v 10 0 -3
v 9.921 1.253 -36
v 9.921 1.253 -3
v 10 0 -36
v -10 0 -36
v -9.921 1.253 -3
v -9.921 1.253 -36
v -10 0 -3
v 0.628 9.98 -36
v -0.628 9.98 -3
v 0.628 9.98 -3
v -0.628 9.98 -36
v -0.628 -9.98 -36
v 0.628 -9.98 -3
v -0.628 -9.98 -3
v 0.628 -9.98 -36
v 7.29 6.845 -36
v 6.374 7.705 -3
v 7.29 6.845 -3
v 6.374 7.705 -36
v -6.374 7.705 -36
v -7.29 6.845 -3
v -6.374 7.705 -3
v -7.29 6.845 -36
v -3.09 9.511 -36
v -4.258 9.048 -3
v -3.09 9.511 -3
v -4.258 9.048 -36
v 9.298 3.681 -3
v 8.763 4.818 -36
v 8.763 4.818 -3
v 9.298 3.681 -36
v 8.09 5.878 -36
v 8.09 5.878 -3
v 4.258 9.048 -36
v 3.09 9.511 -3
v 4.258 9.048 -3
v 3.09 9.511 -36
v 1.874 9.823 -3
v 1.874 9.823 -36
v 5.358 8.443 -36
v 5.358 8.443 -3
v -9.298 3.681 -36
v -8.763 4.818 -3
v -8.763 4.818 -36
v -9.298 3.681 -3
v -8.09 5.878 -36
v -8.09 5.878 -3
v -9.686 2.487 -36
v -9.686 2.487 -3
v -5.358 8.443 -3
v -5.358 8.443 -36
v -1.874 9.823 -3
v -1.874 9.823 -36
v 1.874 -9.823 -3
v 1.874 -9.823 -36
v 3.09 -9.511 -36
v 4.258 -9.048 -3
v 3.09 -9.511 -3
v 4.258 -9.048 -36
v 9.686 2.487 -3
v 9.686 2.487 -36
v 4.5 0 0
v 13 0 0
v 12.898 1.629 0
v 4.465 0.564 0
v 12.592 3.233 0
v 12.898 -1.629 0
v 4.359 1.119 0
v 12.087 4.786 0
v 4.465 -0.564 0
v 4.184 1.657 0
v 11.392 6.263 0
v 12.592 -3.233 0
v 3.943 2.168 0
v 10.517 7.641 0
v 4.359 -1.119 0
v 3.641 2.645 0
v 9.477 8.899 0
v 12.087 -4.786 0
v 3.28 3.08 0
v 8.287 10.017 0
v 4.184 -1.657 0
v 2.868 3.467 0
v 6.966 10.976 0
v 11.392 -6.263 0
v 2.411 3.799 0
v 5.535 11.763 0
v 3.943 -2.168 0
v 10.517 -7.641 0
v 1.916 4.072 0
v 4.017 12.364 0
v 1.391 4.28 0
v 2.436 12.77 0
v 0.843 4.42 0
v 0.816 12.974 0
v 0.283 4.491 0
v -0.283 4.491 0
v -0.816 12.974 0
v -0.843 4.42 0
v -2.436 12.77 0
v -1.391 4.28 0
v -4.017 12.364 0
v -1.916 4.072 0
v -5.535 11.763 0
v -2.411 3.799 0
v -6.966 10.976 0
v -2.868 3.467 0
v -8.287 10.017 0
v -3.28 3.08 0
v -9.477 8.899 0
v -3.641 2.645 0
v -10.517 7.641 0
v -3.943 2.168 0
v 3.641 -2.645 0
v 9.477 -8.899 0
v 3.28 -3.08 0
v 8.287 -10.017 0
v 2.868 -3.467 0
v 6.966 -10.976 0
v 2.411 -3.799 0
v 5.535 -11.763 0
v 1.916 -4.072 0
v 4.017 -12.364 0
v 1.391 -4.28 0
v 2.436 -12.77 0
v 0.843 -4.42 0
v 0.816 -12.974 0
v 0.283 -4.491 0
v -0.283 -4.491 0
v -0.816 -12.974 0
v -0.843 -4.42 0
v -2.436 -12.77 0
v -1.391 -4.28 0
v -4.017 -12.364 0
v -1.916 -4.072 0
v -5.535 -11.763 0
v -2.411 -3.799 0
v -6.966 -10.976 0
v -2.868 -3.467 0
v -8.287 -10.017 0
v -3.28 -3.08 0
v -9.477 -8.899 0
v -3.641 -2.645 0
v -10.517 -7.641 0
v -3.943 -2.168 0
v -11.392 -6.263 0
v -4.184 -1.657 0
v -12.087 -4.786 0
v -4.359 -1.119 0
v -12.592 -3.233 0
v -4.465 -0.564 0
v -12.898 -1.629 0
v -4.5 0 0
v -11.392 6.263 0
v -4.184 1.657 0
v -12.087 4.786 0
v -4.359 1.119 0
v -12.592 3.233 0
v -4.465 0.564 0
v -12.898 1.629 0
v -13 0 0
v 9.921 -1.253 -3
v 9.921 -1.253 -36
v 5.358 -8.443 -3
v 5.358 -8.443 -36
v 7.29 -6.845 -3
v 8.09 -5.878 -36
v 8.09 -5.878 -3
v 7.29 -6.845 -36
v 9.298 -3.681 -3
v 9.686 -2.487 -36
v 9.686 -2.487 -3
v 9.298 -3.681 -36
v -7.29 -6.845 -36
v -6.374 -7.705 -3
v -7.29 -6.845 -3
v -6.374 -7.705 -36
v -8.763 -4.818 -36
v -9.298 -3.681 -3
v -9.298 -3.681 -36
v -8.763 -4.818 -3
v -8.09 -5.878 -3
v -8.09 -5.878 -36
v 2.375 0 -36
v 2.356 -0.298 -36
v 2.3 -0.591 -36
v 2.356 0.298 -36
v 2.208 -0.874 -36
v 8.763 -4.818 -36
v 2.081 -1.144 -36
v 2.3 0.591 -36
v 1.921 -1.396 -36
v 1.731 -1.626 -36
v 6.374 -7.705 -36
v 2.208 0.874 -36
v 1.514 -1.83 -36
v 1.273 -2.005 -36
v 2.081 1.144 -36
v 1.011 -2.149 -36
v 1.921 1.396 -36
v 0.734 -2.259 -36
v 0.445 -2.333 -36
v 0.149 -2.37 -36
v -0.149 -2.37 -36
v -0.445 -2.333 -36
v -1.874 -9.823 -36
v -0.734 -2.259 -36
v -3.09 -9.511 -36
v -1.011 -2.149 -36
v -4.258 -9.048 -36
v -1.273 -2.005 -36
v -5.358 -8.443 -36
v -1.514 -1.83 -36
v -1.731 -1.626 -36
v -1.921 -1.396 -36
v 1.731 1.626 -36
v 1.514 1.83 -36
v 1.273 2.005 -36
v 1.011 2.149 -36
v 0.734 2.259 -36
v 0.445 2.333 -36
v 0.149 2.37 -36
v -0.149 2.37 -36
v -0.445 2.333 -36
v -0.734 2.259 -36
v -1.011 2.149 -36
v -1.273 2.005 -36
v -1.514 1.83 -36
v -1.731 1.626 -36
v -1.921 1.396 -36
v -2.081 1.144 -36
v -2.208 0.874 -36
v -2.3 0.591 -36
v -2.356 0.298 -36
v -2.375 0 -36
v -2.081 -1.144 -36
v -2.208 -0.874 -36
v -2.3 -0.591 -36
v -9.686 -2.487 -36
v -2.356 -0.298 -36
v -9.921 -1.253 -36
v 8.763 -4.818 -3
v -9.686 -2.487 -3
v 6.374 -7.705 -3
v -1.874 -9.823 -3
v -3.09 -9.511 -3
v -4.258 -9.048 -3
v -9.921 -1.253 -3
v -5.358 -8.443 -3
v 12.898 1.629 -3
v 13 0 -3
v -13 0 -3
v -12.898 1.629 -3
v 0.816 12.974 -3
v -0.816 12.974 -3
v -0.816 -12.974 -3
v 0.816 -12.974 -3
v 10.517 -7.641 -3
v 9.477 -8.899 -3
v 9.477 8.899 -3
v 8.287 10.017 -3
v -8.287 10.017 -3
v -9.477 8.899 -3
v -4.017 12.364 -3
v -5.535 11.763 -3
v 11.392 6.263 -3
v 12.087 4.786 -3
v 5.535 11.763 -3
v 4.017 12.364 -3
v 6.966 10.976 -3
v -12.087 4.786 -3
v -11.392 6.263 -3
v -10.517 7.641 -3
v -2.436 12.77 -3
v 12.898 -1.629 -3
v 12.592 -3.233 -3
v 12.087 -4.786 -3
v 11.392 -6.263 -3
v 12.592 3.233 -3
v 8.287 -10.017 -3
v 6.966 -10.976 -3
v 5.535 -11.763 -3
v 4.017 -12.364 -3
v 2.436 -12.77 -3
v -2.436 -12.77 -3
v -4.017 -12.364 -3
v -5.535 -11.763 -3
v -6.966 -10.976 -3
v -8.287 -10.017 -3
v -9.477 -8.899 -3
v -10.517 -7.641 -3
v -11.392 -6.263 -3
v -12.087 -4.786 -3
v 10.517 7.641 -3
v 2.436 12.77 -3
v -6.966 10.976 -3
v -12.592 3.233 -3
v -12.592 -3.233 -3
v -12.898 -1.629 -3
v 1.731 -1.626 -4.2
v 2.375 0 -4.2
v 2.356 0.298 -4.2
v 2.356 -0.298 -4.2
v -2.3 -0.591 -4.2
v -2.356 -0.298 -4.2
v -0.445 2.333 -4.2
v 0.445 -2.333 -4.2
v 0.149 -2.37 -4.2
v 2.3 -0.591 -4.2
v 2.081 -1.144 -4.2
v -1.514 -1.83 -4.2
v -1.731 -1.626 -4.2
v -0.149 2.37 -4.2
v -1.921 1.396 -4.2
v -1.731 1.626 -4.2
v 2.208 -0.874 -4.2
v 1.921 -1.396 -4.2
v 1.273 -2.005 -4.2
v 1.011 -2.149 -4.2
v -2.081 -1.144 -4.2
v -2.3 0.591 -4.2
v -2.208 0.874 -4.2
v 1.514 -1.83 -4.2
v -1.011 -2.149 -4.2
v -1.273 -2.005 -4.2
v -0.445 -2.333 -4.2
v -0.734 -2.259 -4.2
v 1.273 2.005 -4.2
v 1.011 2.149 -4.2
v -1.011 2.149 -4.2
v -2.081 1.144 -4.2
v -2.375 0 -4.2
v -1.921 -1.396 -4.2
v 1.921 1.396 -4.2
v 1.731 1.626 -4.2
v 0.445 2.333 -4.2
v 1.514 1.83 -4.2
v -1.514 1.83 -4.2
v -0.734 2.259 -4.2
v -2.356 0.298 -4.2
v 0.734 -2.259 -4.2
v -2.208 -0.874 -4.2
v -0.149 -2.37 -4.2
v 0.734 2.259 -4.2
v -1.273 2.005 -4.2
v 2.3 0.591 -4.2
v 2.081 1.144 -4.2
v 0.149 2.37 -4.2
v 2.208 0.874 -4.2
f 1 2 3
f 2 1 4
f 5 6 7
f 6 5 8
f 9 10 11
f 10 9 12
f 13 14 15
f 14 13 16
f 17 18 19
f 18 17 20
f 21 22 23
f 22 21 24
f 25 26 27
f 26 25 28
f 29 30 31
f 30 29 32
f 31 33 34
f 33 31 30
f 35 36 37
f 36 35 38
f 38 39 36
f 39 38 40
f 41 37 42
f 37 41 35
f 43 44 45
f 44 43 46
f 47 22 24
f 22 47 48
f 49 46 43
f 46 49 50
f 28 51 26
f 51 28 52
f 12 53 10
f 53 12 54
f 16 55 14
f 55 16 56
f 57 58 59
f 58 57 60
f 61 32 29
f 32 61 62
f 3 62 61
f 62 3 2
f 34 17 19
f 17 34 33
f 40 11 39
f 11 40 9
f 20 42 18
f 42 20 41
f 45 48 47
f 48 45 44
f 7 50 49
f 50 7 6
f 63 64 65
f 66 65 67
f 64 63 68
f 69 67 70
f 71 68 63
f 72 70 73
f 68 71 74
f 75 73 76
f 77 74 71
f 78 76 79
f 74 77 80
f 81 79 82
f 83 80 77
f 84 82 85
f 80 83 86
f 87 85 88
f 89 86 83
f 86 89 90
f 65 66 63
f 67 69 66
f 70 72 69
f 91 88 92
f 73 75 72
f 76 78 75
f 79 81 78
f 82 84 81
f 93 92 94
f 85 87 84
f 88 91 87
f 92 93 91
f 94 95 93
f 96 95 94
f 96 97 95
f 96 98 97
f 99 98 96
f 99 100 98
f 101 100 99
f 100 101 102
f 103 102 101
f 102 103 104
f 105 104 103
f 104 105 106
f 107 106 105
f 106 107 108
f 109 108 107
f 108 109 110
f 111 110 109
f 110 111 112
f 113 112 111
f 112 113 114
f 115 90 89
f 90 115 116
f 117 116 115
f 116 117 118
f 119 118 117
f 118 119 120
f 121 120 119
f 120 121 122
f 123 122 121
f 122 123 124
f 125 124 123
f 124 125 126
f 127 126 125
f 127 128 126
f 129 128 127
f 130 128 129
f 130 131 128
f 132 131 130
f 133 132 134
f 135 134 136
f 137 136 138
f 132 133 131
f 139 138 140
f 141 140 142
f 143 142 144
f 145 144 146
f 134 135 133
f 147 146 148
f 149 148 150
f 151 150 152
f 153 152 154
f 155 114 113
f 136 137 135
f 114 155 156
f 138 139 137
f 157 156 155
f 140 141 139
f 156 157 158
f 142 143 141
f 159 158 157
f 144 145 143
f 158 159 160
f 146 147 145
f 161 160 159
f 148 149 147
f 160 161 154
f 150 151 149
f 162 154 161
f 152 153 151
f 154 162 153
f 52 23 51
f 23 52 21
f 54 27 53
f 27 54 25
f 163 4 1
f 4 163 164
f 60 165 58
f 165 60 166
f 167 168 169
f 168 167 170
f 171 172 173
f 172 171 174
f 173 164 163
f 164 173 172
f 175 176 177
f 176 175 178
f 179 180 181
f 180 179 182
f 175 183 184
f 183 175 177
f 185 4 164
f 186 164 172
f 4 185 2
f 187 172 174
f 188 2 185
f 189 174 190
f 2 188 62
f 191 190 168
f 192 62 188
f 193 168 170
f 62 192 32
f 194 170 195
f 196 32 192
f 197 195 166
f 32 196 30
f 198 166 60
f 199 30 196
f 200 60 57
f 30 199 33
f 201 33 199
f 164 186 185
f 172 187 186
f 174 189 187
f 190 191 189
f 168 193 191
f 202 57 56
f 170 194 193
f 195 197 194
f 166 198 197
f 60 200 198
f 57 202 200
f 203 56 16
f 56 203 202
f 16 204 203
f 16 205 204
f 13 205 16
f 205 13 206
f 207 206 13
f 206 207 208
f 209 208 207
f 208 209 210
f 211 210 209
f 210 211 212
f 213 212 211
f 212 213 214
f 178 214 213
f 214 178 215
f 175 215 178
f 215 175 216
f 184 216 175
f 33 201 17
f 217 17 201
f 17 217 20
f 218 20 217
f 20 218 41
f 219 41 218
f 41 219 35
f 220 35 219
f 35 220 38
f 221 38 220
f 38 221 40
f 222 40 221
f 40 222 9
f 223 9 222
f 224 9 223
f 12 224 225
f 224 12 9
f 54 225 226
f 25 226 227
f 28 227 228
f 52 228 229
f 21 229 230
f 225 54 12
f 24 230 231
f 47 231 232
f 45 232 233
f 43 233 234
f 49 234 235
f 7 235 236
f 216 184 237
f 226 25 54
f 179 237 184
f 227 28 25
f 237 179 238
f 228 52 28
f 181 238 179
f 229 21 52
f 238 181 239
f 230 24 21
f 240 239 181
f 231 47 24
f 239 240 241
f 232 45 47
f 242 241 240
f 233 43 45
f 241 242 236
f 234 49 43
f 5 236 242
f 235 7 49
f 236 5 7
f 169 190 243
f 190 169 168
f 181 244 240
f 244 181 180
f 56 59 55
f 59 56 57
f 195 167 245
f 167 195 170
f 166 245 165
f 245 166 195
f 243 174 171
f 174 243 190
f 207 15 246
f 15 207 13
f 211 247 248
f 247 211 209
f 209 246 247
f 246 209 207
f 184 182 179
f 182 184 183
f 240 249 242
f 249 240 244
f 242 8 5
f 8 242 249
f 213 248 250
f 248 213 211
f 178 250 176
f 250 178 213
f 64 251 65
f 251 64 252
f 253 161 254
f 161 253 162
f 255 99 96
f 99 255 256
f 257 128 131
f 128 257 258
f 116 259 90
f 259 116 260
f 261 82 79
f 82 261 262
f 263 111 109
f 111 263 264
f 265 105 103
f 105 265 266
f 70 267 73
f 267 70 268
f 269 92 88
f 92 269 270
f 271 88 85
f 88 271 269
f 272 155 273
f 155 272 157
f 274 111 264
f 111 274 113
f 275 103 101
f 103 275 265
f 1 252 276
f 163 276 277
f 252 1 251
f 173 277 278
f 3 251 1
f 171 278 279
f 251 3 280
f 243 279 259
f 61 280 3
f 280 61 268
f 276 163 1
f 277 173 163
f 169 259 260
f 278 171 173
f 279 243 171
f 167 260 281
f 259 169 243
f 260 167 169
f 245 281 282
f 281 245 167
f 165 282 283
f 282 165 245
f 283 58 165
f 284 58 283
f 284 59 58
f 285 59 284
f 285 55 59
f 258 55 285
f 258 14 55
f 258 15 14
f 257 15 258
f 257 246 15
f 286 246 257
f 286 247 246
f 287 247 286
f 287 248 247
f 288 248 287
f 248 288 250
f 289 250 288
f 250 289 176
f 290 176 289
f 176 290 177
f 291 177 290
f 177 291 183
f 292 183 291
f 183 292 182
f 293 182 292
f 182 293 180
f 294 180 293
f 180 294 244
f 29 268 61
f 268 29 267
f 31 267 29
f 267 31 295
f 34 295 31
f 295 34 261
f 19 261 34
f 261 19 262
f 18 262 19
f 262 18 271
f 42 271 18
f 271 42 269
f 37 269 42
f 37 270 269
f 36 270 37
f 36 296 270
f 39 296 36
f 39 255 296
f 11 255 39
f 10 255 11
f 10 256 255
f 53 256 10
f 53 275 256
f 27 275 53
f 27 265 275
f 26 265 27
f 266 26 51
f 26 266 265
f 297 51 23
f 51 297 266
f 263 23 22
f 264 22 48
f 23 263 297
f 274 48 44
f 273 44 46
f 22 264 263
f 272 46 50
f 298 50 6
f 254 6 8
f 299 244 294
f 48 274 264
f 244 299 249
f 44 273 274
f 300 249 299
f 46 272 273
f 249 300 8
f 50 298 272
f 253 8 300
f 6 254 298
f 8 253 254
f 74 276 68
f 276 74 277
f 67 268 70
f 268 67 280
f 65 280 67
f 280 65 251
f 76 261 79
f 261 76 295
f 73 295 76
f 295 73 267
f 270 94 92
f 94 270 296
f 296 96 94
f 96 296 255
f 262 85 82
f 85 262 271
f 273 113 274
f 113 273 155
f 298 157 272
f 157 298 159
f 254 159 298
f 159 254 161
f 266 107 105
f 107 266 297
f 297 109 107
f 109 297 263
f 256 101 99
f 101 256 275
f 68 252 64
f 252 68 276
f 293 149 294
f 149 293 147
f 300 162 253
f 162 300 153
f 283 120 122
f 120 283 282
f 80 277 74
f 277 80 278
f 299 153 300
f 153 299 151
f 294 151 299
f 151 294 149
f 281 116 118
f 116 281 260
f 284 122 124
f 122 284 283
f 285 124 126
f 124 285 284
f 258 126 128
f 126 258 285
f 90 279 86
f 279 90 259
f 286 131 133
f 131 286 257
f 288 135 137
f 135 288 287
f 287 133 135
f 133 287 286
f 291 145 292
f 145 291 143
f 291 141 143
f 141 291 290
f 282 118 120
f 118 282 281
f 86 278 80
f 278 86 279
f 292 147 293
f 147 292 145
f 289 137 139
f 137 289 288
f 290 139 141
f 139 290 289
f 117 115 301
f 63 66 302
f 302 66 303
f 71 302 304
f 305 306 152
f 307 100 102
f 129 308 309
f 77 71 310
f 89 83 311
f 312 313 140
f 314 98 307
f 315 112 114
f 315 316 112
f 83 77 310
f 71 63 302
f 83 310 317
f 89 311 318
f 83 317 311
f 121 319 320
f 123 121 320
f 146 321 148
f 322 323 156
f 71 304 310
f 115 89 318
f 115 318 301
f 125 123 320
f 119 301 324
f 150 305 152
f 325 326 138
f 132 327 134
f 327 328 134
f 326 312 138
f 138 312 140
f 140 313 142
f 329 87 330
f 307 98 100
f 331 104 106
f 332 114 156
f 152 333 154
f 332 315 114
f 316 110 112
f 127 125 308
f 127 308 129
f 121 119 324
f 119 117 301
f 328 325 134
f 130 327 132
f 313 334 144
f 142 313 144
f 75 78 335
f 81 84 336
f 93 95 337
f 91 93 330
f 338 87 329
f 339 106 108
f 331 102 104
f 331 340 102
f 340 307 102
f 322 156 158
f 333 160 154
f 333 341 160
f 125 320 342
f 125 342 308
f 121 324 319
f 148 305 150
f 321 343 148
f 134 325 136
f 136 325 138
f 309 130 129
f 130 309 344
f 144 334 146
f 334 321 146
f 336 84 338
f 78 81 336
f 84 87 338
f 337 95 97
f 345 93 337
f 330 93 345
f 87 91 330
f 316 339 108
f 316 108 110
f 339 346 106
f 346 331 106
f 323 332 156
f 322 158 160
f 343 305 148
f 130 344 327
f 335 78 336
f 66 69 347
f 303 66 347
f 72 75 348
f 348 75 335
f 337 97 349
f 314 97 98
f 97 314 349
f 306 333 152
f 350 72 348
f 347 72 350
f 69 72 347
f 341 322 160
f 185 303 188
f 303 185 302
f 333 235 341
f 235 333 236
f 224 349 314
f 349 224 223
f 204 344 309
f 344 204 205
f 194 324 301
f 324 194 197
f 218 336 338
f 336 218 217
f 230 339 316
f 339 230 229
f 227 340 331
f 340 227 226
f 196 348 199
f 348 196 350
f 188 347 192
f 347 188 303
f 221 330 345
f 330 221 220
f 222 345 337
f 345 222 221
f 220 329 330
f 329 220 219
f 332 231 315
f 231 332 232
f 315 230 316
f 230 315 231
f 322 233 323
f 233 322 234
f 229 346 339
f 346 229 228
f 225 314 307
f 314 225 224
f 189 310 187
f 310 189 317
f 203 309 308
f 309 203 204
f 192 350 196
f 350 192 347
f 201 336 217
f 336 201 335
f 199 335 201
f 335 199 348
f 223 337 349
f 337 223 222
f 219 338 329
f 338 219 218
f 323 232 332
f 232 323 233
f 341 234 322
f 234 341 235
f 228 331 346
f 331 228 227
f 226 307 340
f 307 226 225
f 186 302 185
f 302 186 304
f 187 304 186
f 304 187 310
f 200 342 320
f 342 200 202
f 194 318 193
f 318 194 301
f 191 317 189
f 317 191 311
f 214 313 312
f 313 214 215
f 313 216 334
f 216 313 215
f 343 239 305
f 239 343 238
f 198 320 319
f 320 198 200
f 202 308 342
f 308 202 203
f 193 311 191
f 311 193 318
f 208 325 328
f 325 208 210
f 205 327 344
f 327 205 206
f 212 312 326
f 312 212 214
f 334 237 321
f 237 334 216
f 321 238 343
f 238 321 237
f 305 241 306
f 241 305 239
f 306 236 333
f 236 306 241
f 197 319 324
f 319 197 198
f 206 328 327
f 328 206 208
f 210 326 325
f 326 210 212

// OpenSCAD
$fn = 50;


difference() {
	union() {
		translate(v = [0, 0, -36.0000000000]) {
			cylinder(h = 36, r = 10.0000000000);
		}
		translate(v = [0, 0, -3.0000000000]) {
			cylinder(h = 3, r = 13.0000000000);
		}
	}
	union() {
		translate(v = [0, 0, 0]) {
			rotate(a = [0, 0, 0]) {
				difference() {
					union() {
						#translate(v = [0, 0, -36.0000000000]) {
							cylinder(h = 36, r = 2.2500000000);
						}
						#translate(v = [0, 0, -4.2000000000]) {
							cylinder(h = 4.2000000000, r1 = 2.3750000000, r2 = 4.5000000000);
						}
						#translate(v = [0, 0, -36.0000000000]) {
							cylinder(h = 36, r = 2.3750000000);
						}
						#translate(v = [0, 0, -36.0000000000]) {
							cylinder(h = 36, r = 2.2500000000);
						}
					}
					union();
				}
			}
		}
	}
}
